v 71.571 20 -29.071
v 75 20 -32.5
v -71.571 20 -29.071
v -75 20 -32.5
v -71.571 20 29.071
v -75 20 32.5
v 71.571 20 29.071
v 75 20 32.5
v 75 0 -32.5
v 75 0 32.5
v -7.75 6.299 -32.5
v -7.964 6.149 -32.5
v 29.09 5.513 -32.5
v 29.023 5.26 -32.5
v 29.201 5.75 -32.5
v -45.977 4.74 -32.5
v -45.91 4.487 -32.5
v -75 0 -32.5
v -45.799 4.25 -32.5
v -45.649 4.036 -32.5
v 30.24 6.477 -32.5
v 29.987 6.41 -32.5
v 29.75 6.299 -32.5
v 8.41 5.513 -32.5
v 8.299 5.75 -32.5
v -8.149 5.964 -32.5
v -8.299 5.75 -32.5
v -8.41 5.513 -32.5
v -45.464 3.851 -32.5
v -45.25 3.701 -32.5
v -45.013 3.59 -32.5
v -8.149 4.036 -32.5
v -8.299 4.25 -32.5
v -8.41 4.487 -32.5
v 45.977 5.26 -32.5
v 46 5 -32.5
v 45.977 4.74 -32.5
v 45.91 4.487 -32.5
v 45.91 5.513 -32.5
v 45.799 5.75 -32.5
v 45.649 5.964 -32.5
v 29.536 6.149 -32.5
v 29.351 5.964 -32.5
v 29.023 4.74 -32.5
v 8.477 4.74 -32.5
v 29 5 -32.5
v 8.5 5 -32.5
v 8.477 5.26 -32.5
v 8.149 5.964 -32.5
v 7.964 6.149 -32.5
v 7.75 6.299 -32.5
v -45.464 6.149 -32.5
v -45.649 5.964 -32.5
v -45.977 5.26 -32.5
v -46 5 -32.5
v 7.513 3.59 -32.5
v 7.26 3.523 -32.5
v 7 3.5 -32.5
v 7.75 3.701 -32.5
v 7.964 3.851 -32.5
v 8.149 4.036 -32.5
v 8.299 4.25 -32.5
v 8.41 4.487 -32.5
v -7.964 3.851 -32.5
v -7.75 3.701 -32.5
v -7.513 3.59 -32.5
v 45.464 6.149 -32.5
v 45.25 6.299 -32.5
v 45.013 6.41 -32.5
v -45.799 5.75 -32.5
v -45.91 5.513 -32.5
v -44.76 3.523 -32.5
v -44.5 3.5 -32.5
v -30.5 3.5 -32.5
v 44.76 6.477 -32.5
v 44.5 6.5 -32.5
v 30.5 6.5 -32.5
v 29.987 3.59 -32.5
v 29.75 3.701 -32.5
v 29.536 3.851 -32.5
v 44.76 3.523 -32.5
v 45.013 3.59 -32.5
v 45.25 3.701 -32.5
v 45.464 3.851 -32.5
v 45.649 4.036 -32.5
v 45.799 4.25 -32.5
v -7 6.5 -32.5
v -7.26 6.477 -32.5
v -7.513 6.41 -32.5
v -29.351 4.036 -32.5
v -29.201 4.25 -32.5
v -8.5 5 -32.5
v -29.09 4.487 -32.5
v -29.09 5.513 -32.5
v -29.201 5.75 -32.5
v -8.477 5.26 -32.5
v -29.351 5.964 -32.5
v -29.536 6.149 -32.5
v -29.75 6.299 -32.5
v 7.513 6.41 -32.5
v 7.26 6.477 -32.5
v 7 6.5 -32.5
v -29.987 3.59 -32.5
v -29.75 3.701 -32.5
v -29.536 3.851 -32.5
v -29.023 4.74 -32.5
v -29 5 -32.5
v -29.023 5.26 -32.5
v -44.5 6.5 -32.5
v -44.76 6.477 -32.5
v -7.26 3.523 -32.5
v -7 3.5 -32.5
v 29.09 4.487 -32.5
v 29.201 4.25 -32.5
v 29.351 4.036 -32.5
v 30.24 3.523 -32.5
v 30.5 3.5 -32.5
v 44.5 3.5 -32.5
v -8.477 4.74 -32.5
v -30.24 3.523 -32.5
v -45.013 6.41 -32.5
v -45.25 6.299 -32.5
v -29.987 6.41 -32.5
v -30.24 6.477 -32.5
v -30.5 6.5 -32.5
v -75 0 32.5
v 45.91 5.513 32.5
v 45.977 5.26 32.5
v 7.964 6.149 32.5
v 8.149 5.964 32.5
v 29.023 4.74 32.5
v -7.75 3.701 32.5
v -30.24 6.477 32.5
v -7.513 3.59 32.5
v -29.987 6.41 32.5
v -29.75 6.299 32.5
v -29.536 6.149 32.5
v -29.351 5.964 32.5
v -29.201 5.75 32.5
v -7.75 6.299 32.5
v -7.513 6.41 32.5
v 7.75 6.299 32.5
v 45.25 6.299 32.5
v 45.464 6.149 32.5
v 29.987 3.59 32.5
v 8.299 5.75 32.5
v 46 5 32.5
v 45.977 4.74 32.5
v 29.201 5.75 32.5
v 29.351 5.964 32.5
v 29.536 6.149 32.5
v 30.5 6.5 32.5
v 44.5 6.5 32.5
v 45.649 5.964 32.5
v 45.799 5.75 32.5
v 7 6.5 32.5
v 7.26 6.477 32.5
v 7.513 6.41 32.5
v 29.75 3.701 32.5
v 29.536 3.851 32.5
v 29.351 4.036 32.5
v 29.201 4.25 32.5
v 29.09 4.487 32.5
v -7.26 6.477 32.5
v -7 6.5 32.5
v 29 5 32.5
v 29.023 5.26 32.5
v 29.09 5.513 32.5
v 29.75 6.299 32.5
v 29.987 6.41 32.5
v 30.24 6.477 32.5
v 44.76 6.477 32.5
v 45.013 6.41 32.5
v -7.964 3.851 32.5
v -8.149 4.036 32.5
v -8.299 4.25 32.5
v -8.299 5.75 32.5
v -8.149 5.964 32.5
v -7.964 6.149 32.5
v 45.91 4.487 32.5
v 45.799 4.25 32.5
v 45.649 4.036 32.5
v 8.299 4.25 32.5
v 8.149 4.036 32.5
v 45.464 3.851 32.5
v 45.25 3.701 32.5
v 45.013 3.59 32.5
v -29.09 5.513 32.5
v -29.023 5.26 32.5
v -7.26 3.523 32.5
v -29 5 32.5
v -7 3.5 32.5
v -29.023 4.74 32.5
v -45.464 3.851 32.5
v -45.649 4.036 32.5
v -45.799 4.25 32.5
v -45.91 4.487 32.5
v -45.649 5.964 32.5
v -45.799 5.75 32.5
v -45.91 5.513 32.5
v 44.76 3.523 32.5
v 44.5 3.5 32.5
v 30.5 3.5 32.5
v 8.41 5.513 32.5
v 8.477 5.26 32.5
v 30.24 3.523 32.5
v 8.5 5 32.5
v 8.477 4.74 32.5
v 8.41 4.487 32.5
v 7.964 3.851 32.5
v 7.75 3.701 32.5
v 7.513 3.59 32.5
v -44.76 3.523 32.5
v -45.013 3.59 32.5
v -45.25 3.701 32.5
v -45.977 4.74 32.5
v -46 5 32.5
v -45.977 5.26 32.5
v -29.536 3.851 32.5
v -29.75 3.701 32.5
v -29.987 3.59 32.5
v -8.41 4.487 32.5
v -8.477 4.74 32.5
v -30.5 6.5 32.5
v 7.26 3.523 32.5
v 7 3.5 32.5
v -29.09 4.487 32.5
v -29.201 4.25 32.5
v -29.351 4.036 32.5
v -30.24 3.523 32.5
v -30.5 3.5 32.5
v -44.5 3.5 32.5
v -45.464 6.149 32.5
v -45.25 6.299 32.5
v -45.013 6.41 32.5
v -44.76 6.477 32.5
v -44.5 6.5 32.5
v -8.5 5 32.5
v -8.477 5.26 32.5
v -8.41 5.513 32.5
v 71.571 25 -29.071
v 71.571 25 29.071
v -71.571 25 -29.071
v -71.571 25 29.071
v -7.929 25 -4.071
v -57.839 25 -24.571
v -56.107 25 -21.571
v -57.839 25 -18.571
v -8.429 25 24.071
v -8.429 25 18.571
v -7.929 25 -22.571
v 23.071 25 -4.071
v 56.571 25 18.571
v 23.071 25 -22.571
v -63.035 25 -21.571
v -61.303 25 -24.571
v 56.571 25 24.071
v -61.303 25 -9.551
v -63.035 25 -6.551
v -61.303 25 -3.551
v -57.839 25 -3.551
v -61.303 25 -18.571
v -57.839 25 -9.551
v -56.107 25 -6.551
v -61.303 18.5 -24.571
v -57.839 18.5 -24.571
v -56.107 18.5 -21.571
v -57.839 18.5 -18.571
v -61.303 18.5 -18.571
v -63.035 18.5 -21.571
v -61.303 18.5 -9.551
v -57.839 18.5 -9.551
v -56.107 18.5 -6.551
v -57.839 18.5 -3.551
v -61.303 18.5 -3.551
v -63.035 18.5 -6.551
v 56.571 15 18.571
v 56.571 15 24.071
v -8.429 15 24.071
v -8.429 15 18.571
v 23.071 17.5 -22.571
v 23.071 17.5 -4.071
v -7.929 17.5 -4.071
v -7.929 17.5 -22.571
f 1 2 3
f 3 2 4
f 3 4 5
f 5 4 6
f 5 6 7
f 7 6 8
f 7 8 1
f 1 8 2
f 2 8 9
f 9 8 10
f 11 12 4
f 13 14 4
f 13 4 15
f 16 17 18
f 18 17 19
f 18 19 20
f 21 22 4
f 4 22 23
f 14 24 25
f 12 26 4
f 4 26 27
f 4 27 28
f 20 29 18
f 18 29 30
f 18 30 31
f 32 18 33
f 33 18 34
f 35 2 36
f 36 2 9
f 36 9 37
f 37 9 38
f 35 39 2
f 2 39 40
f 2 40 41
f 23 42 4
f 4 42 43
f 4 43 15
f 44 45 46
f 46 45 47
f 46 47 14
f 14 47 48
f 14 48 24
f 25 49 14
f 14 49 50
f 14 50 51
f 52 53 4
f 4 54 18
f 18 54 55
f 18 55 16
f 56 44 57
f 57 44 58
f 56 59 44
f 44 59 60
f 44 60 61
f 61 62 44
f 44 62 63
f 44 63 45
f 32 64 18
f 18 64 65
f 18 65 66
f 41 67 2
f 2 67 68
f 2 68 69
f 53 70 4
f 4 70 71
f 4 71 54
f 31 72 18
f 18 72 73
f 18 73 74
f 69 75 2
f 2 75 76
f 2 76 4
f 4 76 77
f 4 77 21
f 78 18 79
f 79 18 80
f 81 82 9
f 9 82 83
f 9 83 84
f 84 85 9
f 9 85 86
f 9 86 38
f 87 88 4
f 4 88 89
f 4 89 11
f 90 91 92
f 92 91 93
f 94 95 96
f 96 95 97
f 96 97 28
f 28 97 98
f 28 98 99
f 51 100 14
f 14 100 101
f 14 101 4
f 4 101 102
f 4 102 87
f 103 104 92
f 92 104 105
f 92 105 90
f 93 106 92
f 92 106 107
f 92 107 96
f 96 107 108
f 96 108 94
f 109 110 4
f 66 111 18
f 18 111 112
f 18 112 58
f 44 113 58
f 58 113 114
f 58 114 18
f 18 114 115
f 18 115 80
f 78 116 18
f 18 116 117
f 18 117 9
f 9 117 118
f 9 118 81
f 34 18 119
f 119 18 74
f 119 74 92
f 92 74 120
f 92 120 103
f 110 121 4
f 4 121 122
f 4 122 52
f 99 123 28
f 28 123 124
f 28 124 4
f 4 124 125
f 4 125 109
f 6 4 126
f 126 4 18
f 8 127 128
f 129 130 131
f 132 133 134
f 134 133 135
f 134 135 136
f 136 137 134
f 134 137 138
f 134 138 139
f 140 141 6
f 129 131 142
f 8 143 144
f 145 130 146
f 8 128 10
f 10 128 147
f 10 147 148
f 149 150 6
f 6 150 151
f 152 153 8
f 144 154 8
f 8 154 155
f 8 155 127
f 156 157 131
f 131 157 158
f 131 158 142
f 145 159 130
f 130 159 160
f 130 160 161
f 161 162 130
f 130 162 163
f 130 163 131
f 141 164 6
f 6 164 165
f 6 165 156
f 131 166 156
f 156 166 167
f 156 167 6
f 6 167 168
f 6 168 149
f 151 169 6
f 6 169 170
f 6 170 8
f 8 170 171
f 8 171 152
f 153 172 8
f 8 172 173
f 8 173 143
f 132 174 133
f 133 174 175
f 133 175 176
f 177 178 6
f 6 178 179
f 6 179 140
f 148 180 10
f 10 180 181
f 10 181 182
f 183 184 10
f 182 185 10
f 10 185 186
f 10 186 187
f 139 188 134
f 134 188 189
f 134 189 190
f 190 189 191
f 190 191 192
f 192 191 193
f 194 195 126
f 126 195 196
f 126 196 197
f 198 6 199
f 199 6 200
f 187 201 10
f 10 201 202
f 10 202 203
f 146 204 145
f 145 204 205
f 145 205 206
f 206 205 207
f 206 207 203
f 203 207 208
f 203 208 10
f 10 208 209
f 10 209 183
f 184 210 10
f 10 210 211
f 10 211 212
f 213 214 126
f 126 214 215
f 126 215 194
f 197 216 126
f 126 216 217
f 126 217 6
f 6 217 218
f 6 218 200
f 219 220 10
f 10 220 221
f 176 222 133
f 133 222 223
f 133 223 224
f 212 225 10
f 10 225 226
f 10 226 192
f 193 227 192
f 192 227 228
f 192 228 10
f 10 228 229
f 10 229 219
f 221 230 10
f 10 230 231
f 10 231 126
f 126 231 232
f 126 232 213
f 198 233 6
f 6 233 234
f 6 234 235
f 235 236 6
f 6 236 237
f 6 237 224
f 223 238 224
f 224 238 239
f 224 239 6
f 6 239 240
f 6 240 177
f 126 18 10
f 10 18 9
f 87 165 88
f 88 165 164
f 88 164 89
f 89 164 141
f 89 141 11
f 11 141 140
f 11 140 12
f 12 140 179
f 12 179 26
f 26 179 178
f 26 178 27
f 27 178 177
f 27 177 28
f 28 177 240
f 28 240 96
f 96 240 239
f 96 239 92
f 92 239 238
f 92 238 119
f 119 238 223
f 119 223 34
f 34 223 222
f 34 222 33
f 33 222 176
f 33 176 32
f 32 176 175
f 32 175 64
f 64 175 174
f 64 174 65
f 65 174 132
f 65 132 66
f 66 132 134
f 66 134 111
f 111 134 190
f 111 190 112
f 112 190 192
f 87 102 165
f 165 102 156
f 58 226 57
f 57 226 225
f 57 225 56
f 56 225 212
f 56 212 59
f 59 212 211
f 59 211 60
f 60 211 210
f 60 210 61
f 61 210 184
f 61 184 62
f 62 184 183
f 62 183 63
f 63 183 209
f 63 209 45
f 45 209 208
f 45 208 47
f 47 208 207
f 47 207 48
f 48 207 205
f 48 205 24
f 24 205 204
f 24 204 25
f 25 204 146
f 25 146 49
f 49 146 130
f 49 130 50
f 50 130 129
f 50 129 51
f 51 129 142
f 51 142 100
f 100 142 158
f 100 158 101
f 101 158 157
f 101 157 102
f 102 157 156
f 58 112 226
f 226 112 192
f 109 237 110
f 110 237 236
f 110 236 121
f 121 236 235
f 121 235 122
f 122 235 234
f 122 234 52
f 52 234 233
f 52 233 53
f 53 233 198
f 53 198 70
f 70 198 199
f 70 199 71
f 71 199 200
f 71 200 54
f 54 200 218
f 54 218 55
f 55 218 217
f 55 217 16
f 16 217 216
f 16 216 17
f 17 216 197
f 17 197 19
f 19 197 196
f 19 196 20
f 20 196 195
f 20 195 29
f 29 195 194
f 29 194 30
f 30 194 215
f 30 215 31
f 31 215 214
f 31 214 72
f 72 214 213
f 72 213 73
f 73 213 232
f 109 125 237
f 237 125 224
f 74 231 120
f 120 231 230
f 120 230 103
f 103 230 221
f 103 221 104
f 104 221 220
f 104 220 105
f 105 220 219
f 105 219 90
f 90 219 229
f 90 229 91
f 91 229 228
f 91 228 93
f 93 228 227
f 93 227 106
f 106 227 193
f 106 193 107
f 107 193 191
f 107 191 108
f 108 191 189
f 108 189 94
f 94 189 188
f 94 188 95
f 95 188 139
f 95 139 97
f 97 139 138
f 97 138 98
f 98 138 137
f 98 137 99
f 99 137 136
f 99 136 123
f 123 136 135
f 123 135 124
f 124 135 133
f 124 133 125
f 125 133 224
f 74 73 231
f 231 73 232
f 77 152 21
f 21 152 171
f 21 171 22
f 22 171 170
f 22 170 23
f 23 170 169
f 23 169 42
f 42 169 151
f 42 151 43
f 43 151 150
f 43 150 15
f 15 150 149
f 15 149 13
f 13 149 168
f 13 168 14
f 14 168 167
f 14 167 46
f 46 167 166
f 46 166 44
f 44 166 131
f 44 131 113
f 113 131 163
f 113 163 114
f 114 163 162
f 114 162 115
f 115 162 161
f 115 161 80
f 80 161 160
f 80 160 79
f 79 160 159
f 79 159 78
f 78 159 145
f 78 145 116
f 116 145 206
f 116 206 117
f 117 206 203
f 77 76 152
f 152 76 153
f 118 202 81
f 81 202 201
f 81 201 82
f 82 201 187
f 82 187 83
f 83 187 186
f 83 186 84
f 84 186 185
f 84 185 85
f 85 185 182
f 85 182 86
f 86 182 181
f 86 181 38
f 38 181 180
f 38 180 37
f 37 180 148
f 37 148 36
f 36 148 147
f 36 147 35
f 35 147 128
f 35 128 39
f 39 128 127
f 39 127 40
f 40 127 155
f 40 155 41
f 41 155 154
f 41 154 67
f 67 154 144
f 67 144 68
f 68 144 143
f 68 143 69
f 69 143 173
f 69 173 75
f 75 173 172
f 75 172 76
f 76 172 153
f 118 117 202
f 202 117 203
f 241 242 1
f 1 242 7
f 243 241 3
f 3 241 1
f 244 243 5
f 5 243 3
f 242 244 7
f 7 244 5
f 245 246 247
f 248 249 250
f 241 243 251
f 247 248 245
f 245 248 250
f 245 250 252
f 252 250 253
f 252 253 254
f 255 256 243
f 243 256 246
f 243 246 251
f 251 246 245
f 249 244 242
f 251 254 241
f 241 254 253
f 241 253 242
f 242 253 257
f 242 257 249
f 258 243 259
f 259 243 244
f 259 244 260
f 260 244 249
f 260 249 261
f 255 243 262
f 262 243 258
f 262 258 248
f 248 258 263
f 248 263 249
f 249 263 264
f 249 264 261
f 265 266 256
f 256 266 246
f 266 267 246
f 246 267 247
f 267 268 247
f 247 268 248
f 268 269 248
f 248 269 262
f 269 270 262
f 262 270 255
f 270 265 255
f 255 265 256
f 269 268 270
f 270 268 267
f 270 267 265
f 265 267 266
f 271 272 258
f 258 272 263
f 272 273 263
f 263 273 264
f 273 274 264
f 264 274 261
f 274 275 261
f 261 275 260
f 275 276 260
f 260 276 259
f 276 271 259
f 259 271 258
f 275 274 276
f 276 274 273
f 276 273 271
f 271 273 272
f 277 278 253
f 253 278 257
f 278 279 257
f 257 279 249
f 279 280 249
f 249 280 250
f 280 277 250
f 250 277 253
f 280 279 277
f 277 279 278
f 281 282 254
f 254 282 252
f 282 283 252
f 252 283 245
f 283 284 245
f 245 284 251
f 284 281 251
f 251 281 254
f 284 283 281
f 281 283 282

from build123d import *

# Parameters (mm, degrees)
SKETCH1_W           = 150
SKETCH1_H           = 65
BOSS_EXTRUDE1_DEPTH = 20
CUT_EXTRUDE1_DEPTH  = 66
SKETCH3_W           = 143.142
SKETCH3_H           = 58.142
BOSS_EXTRUDE2_DEPTH = 5
CUT_EXTRUDE2_DEPTH  = 6.5
SKETCH6_W           = 65
SKETCH6_H           = 5.5
CUT_EXTRUDE3_DEPTH  = 10
SKETCH7_W           = 31
SKETCH7_H           = 18.5
CUT_EXTRUDE4_DEPTH  = 7.5


with BuildPart() as part:
    # Sketch1 → Boss-Extrude1 (new body)
    with BuildSketch(Plane(origin=(0, 0, 0), x_dir=(1, 0, 0), z_dir=(0, 1, 0))):
        Rectangle(SKETCH1_W, SKETCH1_H)
    extrude(amount=BOSS_EXTRUDE1_DEPTH)

    # Sketch2 → Cut-Extrude1 (cut, through all)
    with BuildSketch(Plane.XY.offset(32.5)):
        with BuildLine():
            Line((-7, 6.5), (7, 6.5))
            ThreePointArc((7, 6.5), (8.5, 5), (7, 3.5))
            Line((7, 3.5), (-7, 3.5))
            ThreePointArc((-7, 3.5), (-8.5, 5), (-7, 6.5))
        make_face()
        with BuildLine():
            Line((-44.5, 6.5), (-30.5, 6.5))
            ThreePointArc((-30.5, 6.5), (-29, 5), (-30.5, 3.5))
            Line((-30.5, 3.5), (-44.5, 3.5))
            ThreePointArc((-44.5, 3.5), (-46, 5), (-44.5, 6.5))
        make_face()
        with BuildLine():
            Line((30.5, 6.5), (44.5, 6.5))
            ThreePointArc((44.5, 6.5), (46, 5), (44.5, 3.5))
            Line((44.5, 3.5), (30.5, 3.5))
            ThreePointArc((30.5, 3.5), (29, 5), (30.5, 6.5))
        make_face()
    extrude(amount=-CUT_EXTRUDE1_DEPTH, mode=Mode.SUBTRACT)

    # Sketch3 → Boss-Extrude2 (add)
    with BuildSketch(Plane(origin=(0, 20, 0), x_dir=(1, 0, 0), z_dir=(0, 1, 0))):
        Rectangle(SKETCH3_W, SKETCH3_H)
    extrude(amount=BOSS_EXTRUDE2_DEPTH)

    # Sketch4 → Cut-Extrude2 (cut)
    with BuildSketch(Plane(origin=(0, 25, 0), x_dir=(1, 0, 0), z_dir=(0, 1, 0))):
        Polygon((-61.303050808, 24.571), (-63.035101615, 21.571), (-61.303050808, 18.571), (-57.838949192, 18.571), (-56.106898385, 21.571), (-57.838949192, 24.571), align=None)
        Polygon((-61.303050808, 9.551), (-63.035101615, 6.551), (-61.303050808, 3.551), (-57.838949192, 3.551), (-56.106898385, 6.551), (-57.838949192, 9.551), align=None)
    extrude(amount=-CUT_EXTRUDE2_DEPTH, mode=Mode.SUBTRACT)

    # Sketch6 → Cut-Extrude3 (cut)
    with BuildSketch(Plane(origin=(0, 25, 0), x_dir=(1, 0, 0), z_dir=(0, 1, 0))):
        with Locations((24.071, -21.321)):
            Rectangle(SKETCH6_W, SKETCH6_H)
    extrude(amount=-CUT_EXTRUDE3_DEPTH, mode=Mode.SUBTRACT)

    # Sketch7 → Cut-Extrude4 (cut)
    with BuildSketch(Plane(origin=(0, 25, 0), x_dir=(1, 0, 0), z_dir=(0, 1, 0))):
        with Locations((7.571, 13.321)):
            Rectangle(SKETCH7_W, SKETCH7_H)
    extrude(amount=-CUT_EXTRUDE4_DEPTH, mode=Mode.SUBTRACT)


solid = part.part
